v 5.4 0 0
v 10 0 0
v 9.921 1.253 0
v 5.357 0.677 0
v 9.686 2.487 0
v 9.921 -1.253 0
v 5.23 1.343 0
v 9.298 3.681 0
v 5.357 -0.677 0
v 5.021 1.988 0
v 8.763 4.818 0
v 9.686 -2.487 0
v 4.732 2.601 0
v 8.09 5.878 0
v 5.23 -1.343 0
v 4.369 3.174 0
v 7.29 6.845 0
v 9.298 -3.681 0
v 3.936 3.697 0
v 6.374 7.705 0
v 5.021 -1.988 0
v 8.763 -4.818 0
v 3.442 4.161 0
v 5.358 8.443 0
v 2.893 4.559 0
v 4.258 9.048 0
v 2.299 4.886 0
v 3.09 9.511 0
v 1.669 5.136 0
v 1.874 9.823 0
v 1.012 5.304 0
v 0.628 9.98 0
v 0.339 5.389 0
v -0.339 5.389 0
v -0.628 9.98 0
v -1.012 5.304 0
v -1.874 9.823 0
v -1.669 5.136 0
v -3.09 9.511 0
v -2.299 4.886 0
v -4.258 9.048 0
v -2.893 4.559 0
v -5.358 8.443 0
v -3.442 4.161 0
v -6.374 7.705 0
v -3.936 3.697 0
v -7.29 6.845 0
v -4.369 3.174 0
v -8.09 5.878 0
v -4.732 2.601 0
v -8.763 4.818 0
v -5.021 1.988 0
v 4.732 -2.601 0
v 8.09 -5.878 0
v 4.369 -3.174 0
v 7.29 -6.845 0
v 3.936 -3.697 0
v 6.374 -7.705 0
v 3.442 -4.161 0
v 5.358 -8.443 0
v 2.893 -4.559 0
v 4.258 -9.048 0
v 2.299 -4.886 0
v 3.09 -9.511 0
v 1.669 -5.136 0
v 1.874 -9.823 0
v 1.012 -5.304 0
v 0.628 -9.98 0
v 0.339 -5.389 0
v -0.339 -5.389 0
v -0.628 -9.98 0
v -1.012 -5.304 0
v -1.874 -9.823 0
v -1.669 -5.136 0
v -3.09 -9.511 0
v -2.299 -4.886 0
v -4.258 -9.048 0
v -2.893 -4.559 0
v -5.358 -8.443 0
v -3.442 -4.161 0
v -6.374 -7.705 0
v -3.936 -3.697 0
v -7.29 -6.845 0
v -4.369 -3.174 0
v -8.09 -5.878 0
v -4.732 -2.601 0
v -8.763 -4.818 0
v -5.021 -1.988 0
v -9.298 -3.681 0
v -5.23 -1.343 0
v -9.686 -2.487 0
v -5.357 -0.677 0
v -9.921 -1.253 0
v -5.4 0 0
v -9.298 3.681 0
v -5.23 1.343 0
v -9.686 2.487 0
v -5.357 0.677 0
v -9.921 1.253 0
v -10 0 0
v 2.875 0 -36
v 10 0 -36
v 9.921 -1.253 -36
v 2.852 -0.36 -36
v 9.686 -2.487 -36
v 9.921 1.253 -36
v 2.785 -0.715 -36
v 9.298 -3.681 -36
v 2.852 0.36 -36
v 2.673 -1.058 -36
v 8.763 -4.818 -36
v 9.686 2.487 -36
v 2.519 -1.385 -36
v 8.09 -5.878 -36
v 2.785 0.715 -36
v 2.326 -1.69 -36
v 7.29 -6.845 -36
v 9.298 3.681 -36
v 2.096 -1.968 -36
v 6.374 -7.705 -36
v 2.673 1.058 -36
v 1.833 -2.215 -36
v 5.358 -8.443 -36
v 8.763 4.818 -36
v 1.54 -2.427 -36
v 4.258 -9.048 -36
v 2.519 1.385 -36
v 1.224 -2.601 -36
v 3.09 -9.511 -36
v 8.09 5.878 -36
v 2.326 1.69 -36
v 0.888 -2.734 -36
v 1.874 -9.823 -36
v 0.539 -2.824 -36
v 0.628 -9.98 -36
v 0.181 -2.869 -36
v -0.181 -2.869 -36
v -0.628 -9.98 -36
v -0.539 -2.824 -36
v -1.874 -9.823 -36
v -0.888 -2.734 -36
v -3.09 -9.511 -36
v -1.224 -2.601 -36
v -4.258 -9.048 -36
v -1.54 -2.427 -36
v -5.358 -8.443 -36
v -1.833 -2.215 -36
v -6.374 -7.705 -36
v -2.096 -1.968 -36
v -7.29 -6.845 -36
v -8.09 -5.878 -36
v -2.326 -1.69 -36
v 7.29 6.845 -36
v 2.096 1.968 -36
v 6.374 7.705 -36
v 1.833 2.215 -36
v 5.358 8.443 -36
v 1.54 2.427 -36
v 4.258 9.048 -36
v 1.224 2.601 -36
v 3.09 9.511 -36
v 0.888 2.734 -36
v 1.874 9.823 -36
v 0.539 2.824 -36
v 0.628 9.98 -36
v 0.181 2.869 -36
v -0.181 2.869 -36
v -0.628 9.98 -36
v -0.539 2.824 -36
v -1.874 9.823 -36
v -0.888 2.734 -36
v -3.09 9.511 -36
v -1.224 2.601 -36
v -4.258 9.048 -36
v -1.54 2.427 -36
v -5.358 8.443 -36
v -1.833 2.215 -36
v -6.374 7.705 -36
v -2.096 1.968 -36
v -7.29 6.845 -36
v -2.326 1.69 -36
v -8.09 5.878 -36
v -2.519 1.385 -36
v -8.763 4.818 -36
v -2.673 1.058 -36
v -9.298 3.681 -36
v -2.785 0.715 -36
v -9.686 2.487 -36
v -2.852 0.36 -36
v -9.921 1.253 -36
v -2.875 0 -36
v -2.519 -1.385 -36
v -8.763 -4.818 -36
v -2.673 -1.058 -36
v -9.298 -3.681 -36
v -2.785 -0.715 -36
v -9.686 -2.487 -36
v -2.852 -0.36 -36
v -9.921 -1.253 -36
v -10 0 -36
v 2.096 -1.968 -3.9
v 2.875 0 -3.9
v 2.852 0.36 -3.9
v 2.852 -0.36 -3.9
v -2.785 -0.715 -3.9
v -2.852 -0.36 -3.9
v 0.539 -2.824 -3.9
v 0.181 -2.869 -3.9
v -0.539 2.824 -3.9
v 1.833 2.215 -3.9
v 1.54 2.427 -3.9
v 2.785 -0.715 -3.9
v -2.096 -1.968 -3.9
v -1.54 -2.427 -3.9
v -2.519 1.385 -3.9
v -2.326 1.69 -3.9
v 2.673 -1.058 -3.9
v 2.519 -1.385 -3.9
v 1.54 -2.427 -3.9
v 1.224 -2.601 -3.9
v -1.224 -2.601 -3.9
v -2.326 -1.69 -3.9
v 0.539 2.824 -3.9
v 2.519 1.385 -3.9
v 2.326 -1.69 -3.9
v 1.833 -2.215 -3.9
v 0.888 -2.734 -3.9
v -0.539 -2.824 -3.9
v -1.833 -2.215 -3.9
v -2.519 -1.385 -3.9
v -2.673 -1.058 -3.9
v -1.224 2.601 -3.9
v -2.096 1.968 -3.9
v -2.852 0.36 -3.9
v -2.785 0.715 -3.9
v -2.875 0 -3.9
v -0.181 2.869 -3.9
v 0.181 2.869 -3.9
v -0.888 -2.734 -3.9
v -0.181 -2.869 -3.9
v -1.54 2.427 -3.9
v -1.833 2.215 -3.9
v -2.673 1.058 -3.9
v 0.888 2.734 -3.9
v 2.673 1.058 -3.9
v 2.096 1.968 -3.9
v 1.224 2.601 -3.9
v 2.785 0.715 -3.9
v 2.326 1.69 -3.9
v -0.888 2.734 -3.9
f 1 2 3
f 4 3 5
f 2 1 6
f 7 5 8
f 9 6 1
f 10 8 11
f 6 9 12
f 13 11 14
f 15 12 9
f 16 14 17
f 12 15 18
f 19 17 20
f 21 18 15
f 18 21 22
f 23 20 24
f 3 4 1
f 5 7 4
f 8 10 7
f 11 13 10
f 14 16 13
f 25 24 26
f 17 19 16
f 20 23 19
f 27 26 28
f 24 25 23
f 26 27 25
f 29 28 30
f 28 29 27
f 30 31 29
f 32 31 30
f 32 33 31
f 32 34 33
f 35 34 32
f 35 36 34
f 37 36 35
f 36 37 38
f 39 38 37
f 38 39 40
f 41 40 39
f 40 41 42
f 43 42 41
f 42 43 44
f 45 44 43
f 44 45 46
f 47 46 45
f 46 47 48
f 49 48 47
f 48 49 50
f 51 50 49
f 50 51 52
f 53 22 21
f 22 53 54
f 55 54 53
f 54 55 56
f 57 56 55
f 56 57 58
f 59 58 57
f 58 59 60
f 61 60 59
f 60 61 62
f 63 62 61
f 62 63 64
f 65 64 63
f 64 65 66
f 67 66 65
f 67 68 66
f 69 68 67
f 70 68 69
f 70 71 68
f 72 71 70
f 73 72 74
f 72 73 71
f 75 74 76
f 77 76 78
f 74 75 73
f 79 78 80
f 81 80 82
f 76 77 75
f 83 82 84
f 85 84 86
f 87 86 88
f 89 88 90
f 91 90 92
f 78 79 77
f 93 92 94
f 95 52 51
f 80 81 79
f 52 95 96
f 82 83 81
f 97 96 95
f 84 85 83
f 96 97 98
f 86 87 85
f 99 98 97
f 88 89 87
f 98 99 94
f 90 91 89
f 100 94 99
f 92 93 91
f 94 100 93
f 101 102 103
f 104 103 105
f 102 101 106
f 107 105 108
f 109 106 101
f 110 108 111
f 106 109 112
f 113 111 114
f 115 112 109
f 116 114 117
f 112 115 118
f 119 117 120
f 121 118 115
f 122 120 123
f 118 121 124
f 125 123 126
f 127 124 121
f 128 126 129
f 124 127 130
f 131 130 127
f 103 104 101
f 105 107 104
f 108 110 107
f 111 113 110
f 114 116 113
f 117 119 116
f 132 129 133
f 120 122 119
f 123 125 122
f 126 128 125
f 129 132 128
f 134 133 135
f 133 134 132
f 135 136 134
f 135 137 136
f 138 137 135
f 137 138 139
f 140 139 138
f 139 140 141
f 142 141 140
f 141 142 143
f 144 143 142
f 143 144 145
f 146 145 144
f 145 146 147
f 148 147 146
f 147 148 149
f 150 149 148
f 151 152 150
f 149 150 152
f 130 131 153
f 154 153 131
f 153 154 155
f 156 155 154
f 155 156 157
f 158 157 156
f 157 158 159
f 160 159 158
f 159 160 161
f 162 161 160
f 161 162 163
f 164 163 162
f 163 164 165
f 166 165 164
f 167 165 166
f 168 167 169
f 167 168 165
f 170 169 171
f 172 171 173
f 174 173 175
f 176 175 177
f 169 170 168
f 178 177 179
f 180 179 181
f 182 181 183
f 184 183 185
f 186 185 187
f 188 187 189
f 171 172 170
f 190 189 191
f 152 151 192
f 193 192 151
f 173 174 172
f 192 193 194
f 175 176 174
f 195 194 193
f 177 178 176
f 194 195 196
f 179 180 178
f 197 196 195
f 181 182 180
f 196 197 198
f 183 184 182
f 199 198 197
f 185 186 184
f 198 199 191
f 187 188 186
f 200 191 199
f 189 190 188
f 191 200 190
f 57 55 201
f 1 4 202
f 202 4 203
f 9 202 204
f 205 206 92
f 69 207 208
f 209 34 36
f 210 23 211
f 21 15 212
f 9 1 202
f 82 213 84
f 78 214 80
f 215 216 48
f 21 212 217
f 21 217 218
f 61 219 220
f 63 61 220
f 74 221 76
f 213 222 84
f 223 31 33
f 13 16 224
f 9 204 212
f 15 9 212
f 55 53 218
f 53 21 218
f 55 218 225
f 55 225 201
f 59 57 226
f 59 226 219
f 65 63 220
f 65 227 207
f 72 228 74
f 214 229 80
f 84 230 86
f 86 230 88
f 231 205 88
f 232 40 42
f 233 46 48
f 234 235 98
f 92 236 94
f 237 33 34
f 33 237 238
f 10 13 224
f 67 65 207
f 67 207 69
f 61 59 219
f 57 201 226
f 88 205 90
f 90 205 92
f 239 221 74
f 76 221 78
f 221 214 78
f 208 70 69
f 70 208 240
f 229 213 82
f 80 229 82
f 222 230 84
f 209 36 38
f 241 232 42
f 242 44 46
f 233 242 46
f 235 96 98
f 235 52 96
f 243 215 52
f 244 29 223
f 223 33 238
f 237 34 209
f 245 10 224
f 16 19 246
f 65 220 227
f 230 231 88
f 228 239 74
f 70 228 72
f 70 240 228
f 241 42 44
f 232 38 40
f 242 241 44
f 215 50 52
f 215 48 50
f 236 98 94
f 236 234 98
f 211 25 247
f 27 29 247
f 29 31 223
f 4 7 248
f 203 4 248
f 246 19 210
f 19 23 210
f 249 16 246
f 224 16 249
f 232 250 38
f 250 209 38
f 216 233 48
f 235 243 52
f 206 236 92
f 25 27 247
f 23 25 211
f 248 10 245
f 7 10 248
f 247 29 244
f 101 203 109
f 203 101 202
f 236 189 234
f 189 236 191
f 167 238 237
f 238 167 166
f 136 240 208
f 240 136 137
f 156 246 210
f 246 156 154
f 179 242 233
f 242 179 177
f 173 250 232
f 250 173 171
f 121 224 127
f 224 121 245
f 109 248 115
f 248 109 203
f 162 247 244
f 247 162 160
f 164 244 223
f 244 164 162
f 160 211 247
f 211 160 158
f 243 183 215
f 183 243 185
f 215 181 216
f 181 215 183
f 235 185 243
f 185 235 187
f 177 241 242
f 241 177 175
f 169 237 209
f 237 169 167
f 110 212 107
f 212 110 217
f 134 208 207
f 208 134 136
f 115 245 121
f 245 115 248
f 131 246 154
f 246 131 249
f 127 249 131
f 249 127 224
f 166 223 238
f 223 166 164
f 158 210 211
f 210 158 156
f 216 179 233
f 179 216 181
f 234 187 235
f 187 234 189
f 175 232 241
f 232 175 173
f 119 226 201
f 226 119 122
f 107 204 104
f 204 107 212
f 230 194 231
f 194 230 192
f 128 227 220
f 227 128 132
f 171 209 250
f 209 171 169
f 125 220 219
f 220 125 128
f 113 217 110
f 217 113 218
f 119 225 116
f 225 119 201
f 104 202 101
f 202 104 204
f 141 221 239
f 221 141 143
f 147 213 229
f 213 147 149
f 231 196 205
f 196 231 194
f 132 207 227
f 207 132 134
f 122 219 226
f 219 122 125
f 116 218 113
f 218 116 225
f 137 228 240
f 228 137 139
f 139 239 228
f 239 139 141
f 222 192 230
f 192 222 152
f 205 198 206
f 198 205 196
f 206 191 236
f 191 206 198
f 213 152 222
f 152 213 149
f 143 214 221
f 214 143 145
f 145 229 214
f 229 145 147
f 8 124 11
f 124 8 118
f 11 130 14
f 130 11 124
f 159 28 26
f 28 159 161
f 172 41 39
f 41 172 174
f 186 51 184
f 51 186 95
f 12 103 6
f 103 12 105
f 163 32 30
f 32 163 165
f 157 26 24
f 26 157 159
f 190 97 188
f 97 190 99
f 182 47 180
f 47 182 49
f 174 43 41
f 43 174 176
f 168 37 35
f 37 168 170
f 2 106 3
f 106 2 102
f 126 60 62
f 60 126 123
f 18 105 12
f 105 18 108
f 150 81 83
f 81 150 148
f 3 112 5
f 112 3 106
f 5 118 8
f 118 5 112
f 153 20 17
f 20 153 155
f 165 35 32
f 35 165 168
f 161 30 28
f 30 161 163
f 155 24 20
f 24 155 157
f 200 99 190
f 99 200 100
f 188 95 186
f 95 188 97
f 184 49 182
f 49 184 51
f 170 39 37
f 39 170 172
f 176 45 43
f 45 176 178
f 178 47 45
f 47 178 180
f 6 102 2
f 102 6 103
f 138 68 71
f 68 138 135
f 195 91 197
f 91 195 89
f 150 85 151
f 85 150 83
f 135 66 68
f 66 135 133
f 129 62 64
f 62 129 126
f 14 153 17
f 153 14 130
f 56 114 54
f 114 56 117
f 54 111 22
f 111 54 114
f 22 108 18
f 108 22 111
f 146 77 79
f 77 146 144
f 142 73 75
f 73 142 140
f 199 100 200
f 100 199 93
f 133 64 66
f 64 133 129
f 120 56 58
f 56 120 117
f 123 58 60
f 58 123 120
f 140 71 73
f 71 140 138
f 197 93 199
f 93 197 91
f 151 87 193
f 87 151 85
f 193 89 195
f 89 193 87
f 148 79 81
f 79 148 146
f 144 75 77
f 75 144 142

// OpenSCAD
$fn = 50;


difference() {
	union() {
		translate(v = [0, 0, -36.0000000000]) {
			cylinder(h = 36, r = 10.0000000000);
		}
	}
	union() {
		translate(v = [0, 0, 0]) {
			rotate(a = [0, 0, 0]) {
				difference() {
					union() {
						#translate(v = [0, 0, -36.0000000000]) {
							cylinder(h = 36, r = 2.6000000000);
						}
						#translate(v = [0, 0, -3.9000000000]) {
							cylinder(h = 3.9000000000, r1 = 2.8750000000, r2 = 5.4000000000);
						}
						#translate(v = [0, 0, -36.0000000000]) {
							cylinder(h = 36, r = 2.8750000000);
						}
						#translate(v = [0, 0, -36.0000000000]) {
							cylinder(h = 36, r = 2.6000000000);
						}
					}
					union();
				}
			}
		}
	}
}
